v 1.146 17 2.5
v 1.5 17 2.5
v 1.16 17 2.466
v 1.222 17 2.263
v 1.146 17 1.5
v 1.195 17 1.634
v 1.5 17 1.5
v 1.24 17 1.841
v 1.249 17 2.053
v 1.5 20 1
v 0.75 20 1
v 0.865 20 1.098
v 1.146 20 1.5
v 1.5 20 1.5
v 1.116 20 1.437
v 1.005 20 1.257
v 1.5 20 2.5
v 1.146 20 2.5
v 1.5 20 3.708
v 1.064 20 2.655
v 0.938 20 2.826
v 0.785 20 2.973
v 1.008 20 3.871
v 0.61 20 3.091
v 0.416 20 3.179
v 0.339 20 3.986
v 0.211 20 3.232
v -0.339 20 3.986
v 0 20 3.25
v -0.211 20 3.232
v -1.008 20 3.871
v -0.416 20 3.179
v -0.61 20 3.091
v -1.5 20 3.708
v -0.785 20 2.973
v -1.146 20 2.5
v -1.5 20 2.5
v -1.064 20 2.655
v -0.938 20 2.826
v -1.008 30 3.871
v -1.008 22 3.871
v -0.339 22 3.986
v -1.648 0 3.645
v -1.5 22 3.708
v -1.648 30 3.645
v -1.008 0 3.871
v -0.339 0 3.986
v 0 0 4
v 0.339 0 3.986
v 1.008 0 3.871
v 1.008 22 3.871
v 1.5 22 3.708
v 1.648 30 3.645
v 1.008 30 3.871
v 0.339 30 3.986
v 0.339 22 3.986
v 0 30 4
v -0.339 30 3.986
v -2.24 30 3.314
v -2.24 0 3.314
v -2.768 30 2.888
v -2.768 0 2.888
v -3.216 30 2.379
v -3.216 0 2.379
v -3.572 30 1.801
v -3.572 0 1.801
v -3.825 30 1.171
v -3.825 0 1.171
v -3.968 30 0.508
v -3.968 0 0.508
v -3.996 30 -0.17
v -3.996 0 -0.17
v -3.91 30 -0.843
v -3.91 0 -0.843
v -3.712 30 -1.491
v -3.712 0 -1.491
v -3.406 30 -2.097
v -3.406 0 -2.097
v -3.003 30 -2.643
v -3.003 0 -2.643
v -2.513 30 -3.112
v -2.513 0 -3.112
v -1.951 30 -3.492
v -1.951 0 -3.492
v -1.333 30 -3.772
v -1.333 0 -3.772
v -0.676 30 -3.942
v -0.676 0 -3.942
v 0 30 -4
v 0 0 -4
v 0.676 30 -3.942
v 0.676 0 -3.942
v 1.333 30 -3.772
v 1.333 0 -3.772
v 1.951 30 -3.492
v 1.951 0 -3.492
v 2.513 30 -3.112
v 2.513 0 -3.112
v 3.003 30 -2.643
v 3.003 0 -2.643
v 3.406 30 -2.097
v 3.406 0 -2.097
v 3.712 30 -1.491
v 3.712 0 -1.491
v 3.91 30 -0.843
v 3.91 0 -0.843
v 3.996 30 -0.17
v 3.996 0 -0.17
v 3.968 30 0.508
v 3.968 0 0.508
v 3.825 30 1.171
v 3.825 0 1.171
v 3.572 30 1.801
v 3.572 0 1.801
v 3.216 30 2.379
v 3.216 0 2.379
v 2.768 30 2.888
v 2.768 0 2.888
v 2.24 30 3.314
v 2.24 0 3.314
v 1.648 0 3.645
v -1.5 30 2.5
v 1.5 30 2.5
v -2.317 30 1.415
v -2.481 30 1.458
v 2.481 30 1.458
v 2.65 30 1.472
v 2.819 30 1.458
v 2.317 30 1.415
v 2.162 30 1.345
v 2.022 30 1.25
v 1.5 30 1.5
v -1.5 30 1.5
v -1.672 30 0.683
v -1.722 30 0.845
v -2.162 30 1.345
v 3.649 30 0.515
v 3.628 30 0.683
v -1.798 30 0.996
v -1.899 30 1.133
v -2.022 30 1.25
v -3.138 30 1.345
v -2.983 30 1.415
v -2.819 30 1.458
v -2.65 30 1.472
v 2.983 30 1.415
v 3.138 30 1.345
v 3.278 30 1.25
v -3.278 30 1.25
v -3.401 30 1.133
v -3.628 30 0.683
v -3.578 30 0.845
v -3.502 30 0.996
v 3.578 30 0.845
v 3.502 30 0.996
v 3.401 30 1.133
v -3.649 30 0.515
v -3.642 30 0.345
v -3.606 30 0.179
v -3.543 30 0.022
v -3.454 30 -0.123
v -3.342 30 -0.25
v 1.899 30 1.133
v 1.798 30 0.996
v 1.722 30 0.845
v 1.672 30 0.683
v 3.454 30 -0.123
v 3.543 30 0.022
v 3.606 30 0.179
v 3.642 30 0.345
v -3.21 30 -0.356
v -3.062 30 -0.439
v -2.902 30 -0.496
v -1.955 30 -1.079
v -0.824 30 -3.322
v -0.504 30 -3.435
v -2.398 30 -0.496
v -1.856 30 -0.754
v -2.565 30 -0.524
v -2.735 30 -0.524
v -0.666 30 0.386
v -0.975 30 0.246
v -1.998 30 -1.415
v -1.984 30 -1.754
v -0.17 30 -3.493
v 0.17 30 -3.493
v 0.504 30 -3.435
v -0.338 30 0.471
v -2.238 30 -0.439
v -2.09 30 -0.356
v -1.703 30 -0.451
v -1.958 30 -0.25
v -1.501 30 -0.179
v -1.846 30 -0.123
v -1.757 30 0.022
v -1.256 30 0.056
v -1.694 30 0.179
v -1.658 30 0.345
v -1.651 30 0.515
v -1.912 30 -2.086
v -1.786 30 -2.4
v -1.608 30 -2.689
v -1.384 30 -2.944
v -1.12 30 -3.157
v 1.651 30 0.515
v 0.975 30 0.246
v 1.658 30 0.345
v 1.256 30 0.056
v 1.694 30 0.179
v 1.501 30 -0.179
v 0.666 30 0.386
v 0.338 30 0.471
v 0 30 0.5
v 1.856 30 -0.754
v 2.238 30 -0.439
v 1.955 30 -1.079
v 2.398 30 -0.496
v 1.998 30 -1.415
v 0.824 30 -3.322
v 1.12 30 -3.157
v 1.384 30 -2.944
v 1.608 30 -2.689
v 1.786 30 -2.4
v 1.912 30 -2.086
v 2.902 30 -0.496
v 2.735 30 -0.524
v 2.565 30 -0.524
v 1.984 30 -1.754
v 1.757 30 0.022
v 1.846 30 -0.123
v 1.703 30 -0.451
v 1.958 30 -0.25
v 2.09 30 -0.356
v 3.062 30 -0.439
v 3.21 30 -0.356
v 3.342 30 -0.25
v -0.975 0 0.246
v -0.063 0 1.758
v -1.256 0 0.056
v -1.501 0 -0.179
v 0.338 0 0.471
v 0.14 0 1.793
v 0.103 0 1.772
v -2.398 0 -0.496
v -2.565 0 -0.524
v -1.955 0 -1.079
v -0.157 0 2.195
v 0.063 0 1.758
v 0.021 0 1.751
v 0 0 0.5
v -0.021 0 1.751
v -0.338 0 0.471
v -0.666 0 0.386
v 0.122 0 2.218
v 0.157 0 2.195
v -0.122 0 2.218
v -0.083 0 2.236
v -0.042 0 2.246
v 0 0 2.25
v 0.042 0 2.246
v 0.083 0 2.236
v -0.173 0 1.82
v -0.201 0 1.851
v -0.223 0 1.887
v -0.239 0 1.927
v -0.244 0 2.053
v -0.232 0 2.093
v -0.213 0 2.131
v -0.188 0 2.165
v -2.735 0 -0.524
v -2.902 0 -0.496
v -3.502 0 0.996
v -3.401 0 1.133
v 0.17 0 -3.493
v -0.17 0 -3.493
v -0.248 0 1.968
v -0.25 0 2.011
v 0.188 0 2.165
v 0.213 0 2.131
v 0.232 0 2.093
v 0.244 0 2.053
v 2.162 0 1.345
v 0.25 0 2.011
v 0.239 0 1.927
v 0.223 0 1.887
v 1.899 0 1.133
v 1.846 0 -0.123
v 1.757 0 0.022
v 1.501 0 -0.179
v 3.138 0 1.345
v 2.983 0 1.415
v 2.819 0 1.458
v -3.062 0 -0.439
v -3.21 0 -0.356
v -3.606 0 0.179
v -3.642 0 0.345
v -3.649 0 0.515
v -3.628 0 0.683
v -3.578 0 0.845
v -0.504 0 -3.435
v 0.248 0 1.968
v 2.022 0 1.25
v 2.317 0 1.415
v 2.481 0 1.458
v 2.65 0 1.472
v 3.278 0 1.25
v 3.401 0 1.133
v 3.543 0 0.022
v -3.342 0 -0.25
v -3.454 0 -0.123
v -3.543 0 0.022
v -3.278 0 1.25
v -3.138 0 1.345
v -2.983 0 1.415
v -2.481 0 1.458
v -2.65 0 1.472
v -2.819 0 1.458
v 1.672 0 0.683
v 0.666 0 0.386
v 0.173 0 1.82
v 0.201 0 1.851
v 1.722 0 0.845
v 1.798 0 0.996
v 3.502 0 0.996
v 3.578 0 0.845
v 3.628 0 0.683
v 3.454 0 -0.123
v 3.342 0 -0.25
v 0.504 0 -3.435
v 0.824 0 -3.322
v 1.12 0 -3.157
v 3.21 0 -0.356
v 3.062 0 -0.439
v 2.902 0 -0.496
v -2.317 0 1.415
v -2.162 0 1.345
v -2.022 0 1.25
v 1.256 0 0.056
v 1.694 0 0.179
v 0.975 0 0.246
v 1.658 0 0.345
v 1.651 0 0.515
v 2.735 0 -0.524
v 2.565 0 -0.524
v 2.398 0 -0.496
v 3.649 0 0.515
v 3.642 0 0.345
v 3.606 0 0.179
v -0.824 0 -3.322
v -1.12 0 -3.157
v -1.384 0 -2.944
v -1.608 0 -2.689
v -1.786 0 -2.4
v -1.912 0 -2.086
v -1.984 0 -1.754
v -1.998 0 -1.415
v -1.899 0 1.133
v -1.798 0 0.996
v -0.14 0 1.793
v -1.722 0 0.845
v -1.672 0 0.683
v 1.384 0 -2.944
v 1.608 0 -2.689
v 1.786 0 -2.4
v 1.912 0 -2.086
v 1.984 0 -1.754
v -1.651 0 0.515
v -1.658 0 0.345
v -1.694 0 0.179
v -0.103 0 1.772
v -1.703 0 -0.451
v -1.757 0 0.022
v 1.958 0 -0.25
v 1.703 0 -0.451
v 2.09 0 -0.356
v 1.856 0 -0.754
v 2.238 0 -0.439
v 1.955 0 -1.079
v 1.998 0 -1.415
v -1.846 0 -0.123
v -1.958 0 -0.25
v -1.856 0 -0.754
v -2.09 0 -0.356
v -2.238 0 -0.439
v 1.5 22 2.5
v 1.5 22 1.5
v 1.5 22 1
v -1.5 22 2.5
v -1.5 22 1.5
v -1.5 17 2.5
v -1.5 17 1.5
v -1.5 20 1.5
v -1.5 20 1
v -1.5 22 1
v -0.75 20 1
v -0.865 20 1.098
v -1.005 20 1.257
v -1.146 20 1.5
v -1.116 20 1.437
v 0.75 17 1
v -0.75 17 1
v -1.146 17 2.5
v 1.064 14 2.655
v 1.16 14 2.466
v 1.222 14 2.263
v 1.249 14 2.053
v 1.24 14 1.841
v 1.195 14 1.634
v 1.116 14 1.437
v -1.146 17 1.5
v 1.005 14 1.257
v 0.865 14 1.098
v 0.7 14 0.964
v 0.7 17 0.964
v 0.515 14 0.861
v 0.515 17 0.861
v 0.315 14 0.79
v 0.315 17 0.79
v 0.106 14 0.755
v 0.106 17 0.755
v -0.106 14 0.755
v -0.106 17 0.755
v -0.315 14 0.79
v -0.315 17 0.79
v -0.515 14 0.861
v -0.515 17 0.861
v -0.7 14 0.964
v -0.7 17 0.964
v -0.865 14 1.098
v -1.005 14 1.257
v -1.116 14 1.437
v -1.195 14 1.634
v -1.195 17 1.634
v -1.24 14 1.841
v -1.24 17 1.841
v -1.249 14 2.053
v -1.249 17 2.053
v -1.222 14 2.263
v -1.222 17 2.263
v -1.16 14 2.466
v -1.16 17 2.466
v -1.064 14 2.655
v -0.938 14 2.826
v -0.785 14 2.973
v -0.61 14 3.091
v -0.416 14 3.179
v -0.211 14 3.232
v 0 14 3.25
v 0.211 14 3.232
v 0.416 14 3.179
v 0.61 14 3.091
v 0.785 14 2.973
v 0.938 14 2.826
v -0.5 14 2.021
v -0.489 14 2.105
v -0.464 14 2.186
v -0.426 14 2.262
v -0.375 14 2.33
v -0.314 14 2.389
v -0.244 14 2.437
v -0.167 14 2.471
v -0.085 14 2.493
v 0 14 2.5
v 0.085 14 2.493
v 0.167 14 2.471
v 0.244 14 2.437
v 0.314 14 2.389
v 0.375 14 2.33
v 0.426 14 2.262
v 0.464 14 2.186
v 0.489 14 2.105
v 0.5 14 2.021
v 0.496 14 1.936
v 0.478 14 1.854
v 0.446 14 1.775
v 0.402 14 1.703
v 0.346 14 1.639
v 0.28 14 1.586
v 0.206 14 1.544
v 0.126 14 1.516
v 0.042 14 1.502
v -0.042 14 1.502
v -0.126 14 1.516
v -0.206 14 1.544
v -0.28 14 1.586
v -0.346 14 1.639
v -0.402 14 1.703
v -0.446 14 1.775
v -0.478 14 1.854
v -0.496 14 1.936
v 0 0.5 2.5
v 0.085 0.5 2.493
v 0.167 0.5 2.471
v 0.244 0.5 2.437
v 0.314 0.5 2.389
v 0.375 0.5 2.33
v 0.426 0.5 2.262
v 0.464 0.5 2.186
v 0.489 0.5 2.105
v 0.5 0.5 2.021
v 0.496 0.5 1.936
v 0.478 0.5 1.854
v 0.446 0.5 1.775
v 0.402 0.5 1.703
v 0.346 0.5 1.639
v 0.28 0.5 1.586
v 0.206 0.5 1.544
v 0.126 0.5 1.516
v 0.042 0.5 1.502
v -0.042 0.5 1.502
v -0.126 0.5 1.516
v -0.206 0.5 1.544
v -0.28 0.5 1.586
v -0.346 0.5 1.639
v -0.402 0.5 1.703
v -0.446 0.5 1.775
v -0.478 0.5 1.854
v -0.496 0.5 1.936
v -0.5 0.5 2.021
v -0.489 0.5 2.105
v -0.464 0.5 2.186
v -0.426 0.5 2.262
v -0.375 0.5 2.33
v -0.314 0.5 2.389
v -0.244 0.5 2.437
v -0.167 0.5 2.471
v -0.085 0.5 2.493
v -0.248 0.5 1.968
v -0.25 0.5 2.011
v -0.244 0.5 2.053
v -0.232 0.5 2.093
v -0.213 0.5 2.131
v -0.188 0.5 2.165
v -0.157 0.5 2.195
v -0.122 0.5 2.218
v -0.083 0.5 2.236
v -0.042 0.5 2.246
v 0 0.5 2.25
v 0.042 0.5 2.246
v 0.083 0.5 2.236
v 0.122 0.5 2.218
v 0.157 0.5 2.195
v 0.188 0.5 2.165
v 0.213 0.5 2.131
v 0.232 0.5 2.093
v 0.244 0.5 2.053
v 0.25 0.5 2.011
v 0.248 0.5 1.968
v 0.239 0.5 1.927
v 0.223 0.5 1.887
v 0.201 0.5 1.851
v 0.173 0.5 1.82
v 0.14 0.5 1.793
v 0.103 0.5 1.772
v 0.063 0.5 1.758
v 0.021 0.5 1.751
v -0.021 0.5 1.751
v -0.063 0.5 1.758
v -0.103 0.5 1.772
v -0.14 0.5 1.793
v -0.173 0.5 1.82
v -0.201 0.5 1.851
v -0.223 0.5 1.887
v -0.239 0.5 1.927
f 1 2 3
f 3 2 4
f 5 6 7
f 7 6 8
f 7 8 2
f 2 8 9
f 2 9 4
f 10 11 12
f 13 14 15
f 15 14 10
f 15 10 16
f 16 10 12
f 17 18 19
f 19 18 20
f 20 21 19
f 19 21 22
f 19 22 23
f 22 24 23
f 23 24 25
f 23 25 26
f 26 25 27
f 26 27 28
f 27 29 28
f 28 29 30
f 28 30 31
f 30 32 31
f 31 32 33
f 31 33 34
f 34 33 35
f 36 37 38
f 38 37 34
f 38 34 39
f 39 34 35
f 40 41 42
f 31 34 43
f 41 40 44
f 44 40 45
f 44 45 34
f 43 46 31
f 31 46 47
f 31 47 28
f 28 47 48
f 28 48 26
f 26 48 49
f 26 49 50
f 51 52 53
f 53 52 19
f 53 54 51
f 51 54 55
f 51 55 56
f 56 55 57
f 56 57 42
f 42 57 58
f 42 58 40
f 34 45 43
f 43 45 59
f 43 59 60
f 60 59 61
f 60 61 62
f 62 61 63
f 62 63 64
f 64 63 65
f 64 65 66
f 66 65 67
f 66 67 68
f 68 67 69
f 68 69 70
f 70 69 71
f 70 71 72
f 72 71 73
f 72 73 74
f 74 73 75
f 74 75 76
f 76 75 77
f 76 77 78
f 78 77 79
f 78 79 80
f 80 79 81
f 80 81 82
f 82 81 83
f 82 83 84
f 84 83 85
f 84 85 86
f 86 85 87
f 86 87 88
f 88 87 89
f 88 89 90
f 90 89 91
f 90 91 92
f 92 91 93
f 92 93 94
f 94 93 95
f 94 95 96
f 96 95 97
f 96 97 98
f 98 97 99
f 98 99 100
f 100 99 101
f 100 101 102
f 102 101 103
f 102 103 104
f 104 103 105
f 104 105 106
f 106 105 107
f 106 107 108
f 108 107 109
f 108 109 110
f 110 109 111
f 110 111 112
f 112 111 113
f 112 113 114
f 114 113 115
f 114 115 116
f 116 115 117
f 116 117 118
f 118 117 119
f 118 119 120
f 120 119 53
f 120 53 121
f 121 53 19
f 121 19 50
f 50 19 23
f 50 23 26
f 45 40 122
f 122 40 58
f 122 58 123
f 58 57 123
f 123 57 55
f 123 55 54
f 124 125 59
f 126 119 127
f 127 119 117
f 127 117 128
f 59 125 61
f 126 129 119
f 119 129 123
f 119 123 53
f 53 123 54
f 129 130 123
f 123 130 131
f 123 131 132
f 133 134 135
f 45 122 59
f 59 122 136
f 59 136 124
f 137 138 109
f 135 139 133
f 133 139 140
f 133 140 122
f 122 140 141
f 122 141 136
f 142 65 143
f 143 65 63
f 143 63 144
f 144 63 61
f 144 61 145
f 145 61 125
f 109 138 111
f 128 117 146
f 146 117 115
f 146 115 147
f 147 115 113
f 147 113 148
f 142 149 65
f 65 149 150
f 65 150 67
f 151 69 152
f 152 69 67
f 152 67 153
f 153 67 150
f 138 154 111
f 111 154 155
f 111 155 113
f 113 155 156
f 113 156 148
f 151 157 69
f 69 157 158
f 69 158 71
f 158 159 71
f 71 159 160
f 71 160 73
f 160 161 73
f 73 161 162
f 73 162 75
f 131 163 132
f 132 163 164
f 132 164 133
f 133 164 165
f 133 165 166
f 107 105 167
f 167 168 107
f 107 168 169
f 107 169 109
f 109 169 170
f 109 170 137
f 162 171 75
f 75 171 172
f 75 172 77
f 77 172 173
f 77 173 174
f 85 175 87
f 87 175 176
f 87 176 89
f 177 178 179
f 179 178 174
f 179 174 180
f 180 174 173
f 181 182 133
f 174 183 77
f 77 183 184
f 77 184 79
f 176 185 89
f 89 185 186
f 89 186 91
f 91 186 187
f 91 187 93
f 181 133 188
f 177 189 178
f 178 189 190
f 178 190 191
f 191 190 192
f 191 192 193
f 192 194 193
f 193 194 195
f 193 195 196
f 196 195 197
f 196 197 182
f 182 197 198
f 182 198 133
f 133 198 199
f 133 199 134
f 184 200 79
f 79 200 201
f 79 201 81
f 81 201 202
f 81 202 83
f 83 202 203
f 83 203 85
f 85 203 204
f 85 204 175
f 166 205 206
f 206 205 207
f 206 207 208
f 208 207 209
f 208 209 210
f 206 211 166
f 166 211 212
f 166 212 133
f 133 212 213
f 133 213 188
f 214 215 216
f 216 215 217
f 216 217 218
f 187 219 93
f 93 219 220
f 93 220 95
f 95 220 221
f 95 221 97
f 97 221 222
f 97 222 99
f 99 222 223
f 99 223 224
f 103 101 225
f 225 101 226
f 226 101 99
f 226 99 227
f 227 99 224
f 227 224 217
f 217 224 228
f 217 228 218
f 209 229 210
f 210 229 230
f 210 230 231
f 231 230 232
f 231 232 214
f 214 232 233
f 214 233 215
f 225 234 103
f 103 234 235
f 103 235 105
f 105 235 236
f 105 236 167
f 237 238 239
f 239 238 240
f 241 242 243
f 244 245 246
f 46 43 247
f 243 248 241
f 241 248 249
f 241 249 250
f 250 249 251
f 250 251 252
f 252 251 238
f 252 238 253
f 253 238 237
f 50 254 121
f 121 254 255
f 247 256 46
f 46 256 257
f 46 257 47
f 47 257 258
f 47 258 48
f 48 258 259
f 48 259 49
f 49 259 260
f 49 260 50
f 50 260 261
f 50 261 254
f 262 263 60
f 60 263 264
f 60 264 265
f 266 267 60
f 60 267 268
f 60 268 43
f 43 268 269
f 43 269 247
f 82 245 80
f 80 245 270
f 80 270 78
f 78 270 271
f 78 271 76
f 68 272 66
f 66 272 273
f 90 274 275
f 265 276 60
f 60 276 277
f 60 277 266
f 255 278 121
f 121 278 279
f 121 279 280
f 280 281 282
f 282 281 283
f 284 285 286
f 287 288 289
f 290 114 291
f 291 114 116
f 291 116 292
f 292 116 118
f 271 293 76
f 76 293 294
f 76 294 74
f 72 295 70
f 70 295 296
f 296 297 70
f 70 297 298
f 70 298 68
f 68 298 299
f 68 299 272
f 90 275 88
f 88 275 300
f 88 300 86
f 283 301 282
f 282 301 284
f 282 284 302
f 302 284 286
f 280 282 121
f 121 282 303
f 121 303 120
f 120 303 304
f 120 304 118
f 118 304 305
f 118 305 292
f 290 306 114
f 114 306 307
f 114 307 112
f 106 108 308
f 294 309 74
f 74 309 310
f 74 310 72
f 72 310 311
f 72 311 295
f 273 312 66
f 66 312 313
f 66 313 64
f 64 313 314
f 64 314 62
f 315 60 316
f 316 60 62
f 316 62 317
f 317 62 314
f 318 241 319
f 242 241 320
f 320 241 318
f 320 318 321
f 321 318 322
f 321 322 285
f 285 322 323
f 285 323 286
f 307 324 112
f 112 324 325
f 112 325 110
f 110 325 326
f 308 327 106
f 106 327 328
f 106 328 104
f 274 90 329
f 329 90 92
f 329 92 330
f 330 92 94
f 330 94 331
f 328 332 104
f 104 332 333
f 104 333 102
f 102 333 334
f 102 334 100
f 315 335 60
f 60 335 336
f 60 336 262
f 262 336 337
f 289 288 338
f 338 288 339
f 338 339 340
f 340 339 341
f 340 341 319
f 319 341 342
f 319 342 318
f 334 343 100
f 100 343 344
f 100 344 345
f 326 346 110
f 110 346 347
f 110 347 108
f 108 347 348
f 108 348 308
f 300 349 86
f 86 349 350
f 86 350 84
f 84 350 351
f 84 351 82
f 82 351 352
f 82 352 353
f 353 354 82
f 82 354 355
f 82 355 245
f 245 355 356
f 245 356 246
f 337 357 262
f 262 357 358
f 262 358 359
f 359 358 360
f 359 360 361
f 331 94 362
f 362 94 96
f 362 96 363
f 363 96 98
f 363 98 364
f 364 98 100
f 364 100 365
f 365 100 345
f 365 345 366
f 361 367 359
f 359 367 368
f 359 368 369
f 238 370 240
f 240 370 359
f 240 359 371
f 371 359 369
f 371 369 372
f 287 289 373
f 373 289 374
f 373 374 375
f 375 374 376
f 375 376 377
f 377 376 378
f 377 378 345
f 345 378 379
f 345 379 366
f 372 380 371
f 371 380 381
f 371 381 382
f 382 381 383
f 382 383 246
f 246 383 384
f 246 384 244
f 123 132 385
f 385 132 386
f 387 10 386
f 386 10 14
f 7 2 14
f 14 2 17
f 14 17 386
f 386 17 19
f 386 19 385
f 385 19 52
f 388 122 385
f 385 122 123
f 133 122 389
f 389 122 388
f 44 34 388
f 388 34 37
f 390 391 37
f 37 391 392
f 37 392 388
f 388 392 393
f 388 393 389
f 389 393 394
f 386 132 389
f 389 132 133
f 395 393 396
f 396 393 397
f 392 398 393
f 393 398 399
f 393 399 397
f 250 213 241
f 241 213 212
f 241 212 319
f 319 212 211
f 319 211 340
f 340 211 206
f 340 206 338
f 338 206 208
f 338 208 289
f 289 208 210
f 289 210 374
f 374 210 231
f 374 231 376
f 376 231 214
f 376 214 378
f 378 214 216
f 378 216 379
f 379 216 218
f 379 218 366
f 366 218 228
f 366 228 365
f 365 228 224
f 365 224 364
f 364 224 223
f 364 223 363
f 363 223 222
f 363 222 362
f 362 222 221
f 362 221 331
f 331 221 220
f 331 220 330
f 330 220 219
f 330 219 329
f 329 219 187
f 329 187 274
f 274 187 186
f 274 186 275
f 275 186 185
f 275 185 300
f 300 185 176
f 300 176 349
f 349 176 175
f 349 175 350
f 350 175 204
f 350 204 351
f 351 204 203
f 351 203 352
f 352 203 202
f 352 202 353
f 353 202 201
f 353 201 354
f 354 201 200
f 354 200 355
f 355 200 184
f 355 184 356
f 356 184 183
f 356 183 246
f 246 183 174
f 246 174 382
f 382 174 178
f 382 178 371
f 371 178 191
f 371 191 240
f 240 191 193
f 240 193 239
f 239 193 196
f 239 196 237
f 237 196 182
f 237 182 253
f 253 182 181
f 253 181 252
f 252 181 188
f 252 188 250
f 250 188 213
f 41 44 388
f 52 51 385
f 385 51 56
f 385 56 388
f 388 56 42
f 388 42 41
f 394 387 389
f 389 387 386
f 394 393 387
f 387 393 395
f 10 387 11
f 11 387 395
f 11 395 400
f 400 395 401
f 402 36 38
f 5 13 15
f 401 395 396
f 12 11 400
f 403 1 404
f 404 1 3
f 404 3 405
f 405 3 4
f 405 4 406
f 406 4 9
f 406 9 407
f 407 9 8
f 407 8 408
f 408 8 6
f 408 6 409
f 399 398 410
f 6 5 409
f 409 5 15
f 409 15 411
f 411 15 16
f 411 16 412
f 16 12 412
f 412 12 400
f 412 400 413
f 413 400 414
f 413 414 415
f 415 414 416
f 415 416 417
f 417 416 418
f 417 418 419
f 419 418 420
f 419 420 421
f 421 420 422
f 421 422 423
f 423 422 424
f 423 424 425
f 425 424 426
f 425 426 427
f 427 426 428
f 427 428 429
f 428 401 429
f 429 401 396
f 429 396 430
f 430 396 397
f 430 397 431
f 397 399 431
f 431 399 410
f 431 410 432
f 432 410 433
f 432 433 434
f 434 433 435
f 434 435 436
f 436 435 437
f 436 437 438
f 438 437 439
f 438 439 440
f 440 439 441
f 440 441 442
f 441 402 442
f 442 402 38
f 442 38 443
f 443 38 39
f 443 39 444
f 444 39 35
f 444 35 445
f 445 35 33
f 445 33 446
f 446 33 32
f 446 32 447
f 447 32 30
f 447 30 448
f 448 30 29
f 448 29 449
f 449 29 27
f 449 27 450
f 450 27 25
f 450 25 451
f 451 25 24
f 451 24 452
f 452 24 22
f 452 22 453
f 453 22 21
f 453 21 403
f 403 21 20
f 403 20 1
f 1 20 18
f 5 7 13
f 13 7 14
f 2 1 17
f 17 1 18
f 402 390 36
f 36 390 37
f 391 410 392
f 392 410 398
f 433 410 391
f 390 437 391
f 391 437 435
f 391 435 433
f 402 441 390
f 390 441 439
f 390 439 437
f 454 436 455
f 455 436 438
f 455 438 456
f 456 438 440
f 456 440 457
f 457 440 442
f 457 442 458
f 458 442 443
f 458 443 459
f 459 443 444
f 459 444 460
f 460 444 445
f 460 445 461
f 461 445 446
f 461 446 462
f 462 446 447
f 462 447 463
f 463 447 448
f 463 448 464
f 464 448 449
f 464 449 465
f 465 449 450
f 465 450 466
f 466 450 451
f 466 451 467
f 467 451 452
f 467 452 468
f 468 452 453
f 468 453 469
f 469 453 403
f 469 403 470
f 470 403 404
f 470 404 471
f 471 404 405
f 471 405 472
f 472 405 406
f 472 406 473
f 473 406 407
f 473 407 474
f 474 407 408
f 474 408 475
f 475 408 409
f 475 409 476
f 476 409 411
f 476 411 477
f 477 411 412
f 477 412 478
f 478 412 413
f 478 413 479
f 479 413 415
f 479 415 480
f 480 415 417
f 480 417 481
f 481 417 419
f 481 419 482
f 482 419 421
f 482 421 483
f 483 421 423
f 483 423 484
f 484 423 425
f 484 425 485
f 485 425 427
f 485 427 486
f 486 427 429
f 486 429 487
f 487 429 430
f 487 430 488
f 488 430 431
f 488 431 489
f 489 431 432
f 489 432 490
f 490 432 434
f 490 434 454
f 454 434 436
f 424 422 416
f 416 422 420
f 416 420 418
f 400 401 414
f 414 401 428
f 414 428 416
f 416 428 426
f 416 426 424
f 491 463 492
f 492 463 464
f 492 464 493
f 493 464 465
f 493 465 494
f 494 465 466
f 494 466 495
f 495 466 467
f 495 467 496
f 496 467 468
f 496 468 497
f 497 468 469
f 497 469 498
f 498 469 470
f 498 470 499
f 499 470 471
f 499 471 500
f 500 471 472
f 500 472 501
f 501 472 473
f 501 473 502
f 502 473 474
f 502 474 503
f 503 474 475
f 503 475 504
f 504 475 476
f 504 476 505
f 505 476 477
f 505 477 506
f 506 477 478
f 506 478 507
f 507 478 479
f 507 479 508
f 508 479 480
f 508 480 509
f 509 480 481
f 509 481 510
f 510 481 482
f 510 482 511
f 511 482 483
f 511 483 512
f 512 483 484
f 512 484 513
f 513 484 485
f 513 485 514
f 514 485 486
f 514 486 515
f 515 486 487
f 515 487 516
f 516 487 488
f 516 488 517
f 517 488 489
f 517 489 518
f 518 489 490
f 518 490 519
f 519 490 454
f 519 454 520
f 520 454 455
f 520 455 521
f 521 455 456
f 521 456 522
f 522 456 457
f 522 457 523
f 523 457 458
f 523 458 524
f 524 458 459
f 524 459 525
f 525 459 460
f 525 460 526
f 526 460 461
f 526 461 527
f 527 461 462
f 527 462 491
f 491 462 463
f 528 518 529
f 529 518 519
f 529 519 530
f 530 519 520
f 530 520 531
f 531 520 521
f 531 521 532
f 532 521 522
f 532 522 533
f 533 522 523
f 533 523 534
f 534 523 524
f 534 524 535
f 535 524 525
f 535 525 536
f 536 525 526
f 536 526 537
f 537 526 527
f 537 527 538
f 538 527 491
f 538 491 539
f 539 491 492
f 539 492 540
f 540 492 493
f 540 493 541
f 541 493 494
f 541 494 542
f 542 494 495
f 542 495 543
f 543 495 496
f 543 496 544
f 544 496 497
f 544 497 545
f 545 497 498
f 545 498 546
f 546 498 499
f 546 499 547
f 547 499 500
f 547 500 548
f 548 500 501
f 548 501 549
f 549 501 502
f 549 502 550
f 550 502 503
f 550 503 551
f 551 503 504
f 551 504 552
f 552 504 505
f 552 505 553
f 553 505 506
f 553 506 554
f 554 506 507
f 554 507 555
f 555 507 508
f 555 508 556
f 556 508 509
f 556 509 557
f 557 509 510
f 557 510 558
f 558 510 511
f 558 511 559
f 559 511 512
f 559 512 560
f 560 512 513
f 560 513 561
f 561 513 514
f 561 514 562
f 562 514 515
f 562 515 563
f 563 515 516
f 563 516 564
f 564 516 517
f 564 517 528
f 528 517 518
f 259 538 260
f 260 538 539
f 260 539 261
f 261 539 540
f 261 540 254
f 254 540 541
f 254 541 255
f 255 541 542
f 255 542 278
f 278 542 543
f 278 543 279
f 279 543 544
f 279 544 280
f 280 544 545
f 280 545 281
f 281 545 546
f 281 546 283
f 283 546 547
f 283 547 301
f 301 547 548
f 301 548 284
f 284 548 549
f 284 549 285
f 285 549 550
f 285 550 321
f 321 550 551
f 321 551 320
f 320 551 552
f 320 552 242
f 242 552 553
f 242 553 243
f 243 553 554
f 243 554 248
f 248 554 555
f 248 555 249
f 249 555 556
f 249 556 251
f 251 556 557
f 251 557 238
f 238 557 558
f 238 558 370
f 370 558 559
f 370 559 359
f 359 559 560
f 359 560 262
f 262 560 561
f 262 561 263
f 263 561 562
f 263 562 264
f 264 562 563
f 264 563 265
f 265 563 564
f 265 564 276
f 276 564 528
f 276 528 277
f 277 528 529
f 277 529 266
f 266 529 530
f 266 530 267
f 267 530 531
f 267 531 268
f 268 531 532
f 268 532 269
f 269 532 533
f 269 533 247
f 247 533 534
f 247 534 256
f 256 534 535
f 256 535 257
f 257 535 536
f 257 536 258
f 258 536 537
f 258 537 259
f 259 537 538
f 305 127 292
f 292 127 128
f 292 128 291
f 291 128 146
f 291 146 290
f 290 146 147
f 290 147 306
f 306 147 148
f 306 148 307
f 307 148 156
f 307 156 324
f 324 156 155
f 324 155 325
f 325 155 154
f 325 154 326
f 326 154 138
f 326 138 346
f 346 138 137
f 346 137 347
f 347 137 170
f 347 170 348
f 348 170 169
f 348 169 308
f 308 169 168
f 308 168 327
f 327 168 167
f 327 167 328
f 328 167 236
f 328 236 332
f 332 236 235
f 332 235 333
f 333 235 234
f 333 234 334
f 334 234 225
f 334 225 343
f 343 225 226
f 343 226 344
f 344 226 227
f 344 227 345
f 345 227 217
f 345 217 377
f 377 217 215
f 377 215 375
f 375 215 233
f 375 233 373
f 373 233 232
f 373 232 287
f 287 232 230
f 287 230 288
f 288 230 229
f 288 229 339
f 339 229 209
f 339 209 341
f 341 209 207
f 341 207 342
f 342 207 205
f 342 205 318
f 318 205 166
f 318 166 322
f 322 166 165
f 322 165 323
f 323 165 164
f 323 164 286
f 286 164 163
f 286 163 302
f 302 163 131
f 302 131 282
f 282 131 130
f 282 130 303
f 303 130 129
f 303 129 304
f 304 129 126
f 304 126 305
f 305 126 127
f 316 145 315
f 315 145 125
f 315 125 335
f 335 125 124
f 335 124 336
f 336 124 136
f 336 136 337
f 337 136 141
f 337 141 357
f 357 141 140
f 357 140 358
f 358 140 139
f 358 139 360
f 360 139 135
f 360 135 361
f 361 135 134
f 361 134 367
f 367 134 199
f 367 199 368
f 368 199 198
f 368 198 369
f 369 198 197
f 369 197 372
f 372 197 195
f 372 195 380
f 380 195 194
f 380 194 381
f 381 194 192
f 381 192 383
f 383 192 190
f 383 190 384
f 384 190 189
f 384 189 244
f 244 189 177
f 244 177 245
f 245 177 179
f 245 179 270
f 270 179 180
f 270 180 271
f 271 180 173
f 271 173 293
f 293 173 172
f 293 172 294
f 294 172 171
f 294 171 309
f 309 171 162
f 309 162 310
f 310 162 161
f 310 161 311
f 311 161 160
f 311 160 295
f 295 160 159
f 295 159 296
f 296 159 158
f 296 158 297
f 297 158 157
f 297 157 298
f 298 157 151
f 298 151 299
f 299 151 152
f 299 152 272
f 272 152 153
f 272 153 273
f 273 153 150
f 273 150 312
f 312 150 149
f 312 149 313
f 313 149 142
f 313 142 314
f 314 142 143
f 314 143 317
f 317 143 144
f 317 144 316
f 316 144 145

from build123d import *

# Parameters (mm, degrees)
SKETCH1_R           = 4
BOSS_EXTRUDE1_DEPTH = 30
SKETCH2_W           = 3
SKETCH2_H           = 1
CUT_EXTRUDE1_DEPTH  = 10
SKETCH3_R           = 2
CUT_EXTRUDE2_DEPTH  = 30
SKETCH4_W           = 3
SKETCH4_H           = 2
CUT_EXTRUDE3_DEPTH  = 30
SKETCH5_W           = 3
SKETCH5_H           = 2
CUT_EXTRUDE5_DEPTH  = 0.5
CUT_EXTRUDE7_START  = -3
CUT_EXTRUDE7_DEPTH  = 3
CUT_EXTRUDE8_START  = -3
SKETCH8_R           = 1.25
CUT_EXTRUDE8_DEPTH  = 3
SKETCH9_R           = 0.5
CUT_EXTRUDE9_DEPTH  = 13.5
SKETCH10_R          = 0.25
CUT_EXTRUDE10_DEPTH = 30
SKETCH11_R          = 1
CUT_EXTRUDE11_DEPTH = 30


# Read off the part's stored shape, not the designer's step: Cut-Extrude7
with BuildPart() as part:
    # Sketch1 → Boss-Extrude1 (new body)
    with BuildSketch(Plane(origin=(0, 0, 0), x_dir=(1, 0, 0), z_dir=(0, 1, 0))):
        with Locations(Location((0, 0, 0), (0, 0, 270))):
            Circle(SKETCH1_R)
    extrude(amount=BOSS_EXTRUDE1_DEPTH)

    # Sketch2 → Cut-Extrude1 (cut)
    with BuildSketch(Plane(origin=(0, 30, 0), x_dir=(1, 0, 0), z_dir=(0, 1, 0))):
        with Locations((0, -2)):
            Rectangle(SKETCH2_W, SKETCH2_H)
    extrude(amount=-CUT_EXTRUDE1_DEPTH, mode=Mode.SUBTRACT)

    # Sketch3 → Cut-Extrude2 (cut)
    with BuildSketch(Plane(origin=(0, 30, 0), x_dir=(1, 0, 0), z_dir=(0, 1, 0))):
        with Locations(Location((0, 1.5, 0), (0, 0, 270))):
            Circle(SKETCH3_R)
    extrude(amount=-CUT_EXTRUDE2_DEPTH, mode=Mode.SUBTRACT)

    # Sketch4 → Cut-Extrude3 (cut)
    with BuildSketch(Plane(origin=(0, 0, 2.5), x_dir=(-1, 0, 0), z_dir=(0, 0, -1))):
        with Locations((0, 21)):
            Rectangle(SKETCH4_W, SKETCH4_H)
    extrude(amount=-CUT_EXTRUDE3_DEPTH, mode=Mode.SUBTRACT)

    # Sketch5 → Cut-Extrude5 (cut)
    with BuildSketch(Plane.XY.offset(1.5)):
        with Locations((0, 21)):
            Rectangle(SKETCH5_W, SKETCH5_H)
    extrude(amount=-CUT_EXTRUDE5_DEPTH, mode=Mode.SUBTRACT)

    # Cut-Extrude7 outline → Cut-Extrude7 (cut)
    with BuildSketch(Plane(origin=(0, 20, 0), x_dir=(1, 0, 0), z_dir=(0, 1, 0)).offset(CUT_EXTRUDE7_START)):
        with BuildLine():
            Line((1.145643924, -2.5), (1.5, -2.5))
            Line((1.5, -2.5), (1.5, -1.5))
            Line((1.5, -1.5), (1.145643924, -1.5))
            ThreePointArc((1.145643924, -1.5), (0.980237967, -1.224349609), (0.75, -1))
            Line((0.75, -1), (-0.75, -1))
            ThreePointArc((-0.75, -1), (-0.980237967, -1.224349609), (-1.145643924, -1.5))
            Line((-1.145643924, -1.5), (-1.5, -1.5))
            Line((-1.5, -1.5), (-1.5, -2.5))
            Line((-1.5, -2.5), (-1.145643924, -2.5))
            ThreePointArc((-1.145643924, -2.5), (0, -3.25), (1.145643924, -2.5))
        make_face()
    extrude(amount=CUT_EXTRUDE7_DEPTH, mode=Mode.SUBTRACT)

    # Sketch8 → Cut-Extrude8 (cut)
    with BuildSketch(Plane(origin=(0, 17, 0), x_dir=(1, 0, 0), z_dir=(0, 1, 0)).offset(CUT_EXTRUDE8_START)):
        with Locations(Location((0, -2, 0), (0, 0, 270))):
            Circle(SKETCH8_R)
    extrude(amount=CUT_EXTRUDE8_DEPTH, mode=Mode.SUBTRACT)

    # Sketch9 → Cut-Extrude9 (cut)
    with BuildSketch(Plane(origin=(0, 14, 0), x_dir=(1, 0, 0), z_dir=(0, 1, 0))):
        with Locations(Location((0, -2, 0), (0, 0, 270))):
            Circle(SKETCH9_R)
    extrude(amount=-CUT_EXTRUDE9_DEPTH, mode=Mode.SUBTRACT)

    # Sketch10 → Cut-Extrude10 (cut)
    with BuildSketch(Plane(origin=(0, 0.5, 0), x_dir=(1, 0, 0), z_dir=(0, 1, 0))):
        with Locations(Location((0, -2, 0), (0, 0, 270))):
            Circle(SKETCH10_R)
    extrude(amount=-CUT_EXTRUDE10_DEPTH, mode=Mode.SUBTRACT)

    # Sketch11 → Cut-Extrude11 (cut)
    with BuildSketch(Plane(origin=(0, 30, 0), x_dir=(1, 0, 0), z_dir=(0, 1, 0))):
        with Locations(Location((-2.65, -0.472074699, 0), (0, 0, 270))):
            Circle(SKETCH11_R)
        with Locations(Location((2.65, -0.472074699, 0), (0, 0, 270))):
            Circle(SKETCH11_R)
    extrude(amount=-CUT_EXTRUDE11_DEPTH, mode=Mode.SUBTRACT)


solid = part.part
